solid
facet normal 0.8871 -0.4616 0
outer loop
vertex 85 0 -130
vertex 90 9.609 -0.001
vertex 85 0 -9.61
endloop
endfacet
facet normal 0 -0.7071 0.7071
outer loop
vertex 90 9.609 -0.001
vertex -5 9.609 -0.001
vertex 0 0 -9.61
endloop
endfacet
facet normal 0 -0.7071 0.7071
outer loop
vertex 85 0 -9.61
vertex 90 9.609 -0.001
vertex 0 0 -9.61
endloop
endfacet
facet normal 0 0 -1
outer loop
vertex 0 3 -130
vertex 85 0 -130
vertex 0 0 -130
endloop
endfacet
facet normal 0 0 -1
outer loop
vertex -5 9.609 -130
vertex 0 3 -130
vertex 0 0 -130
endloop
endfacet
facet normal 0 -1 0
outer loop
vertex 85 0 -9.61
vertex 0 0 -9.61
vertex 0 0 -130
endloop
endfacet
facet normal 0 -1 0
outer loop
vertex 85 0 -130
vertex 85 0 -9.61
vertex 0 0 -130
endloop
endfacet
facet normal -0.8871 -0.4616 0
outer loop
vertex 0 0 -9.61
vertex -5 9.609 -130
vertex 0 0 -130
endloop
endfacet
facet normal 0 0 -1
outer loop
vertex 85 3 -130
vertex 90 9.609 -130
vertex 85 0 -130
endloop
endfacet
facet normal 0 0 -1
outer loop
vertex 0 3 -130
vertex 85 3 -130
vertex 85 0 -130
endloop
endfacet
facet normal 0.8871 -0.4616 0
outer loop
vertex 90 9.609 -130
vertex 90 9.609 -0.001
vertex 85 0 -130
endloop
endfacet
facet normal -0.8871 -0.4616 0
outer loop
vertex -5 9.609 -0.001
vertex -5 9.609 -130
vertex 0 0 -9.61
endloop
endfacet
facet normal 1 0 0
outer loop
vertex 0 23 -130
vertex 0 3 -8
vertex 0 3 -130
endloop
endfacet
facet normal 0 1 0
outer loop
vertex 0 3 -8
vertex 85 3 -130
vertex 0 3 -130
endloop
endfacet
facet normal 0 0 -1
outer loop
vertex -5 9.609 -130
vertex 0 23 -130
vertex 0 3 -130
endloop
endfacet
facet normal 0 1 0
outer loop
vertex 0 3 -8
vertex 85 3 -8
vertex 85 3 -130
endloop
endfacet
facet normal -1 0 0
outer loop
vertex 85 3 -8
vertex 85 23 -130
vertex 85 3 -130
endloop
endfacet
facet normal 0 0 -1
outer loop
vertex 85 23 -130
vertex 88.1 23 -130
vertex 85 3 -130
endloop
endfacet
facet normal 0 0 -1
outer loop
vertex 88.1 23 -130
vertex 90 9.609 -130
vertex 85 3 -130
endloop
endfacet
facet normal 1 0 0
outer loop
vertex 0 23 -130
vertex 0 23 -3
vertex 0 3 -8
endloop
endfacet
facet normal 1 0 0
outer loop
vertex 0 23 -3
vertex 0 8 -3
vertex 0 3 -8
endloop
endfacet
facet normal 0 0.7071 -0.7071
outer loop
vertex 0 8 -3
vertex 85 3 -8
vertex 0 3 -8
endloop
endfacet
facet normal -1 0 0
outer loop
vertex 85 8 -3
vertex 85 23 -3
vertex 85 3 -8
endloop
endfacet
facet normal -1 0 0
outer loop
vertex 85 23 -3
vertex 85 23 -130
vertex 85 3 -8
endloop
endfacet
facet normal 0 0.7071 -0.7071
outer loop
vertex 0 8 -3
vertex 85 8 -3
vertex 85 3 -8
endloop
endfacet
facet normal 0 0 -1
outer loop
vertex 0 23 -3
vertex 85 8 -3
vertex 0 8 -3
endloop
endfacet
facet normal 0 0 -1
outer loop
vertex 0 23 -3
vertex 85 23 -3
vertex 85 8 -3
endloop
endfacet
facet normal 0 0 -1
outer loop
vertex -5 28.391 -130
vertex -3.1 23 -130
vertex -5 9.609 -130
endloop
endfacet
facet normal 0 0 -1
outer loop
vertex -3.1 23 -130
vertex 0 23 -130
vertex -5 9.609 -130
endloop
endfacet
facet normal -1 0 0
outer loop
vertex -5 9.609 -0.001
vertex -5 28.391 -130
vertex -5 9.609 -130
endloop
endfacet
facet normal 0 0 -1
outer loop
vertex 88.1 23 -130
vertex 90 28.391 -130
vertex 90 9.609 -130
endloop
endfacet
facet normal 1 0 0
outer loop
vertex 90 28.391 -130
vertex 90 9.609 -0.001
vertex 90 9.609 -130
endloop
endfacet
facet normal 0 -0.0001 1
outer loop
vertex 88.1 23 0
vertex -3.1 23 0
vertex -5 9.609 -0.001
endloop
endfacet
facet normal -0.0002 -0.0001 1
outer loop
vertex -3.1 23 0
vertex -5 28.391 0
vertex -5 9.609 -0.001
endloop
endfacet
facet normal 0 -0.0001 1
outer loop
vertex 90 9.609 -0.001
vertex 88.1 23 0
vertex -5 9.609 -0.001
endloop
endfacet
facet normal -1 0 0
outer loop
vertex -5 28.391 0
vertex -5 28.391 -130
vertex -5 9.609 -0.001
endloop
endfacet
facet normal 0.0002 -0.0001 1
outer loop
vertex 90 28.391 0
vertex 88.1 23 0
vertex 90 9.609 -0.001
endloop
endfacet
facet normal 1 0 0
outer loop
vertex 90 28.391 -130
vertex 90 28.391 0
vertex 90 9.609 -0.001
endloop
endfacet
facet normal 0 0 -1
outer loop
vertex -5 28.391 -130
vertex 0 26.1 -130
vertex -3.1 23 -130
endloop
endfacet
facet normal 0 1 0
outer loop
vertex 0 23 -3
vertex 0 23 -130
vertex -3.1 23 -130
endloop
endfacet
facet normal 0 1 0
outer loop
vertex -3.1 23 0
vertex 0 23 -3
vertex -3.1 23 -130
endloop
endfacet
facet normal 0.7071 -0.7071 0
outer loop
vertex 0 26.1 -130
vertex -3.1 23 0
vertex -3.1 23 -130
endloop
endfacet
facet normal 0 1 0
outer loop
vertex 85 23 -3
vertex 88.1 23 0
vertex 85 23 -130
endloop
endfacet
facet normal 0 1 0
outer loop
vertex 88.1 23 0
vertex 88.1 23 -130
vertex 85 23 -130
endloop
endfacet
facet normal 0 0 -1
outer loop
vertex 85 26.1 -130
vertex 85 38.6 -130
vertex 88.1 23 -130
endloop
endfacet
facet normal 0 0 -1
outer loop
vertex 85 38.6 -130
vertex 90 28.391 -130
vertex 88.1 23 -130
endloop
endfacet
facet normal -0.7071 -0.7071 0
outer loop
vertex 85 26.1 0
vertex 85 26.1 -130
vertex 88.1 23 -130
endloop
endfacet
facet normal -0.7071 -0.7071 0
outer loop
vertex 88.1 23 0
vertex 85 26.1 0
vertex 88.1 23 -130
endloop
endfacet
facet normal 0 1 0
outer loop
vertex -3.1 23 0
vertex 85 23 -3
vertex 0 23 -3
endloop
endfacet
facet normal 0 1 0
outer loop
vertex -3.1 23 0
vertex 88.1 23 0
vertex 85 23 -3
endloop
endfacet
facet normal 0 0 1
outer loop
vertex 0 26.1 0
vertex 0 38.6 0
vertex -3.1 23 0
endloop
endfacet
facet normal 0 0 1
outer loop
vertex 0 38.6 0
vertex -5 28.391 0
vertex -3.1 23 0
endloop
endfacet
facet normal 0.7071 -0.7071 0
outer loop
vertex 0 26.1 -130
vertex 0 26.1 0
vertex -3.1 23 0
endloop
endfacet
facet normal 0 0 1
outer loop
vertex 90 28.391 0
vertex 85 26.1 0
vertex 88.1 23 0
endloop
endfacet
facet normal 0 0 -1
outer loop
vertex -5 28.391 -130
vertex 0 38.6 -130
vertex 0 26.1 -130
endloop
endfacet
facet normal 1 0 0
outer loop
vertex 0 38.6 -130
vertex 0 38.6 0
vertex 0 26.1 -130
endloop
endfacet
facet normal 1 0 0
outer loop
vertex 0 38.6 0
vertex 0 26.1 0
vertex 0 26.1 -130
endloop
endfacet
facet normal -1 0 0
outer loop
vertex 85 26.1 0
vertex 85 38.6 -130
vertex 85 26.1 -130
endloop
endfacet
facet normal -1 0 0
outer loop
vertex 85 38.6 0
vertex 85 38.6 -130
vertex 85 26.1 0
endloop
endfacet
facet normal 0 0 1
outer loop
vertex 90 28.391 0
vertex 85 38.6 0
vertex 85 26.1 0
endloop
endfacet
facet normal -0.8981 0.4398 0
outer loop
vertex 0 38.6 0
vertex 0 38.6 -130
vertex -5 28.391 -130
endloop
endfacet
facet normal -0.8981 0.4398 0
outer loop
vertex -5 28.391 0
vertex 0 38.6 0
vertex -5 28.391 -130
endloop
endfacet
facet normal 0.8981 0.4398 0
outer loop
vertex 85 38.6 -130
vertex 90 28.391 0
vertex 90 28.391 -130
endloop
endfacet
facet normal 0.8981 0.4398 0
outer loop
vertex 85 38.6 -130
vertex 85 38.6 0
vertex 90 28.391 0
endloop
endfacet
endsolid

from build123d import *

# Parameters (mm, degrees)
SKETCH1_W                           = 85
SKETCH1_H                           = 130
BOSS_EXTRUDE1_BASE_DEPTH            = 3
BOSS_EXTRUDE4_SIDE_WALLS_DEPTH      = 130
CUT_EXTRUDE2_GUIDE_HOLES_DEPTH      = 163.616112363
SKETCH15_W                          = 85
SKETCH15_H                          = 20
BOSS_EXTRUDE9_FRONT_WALL_DEPTH      = 3
CHAMFER5_FRONT_CHAMFER_SIZE         = 9.61
CHAMFER6_FRONT_CHAMFER_CLEANUP_SIZE = 5
BOSS_EXTRUDE1_DEPTH                 = 130


with BuildPart() as part:
    # Sketch1 → Boss-Extrude1 _Base (new body)
    with BuildSketch(Plane(origin=(0, 0, 0), x_dir=(1, 0, 0), z_dir=(0, 1, 0))):
        with Locations((42.5, 65)):
            Rectangle(SKETCH1_W, SKETCH1_H)
    extrude(amount=BOSS_EXTRUDE1_BASE_DEPTH)

    # Sketch5 → Boss-Extrude4 _Side Walls (add, through all)
    with BuildSketch(Plane.XY):
        Polygon((-5, 28.390936655), (0, 38), (0, 0), (-5, 9.609063345), align=None)
        Polygon((90, 9.609063345), (90, 28.390936655), (85, 38), (85, 0), align=None)
    extrude(amount=-BOSS_EXTRUDE4_SIDE_WALLS_DEPTH)

    # Sketch4 → Cut-Extrude2 _Guide Holes (cut, through all)
    with BuildSketch(Plane.XY):
        Polygon((-3.1, 23), (0, 26.1), (0, 23), align=None)
        Polygon((85, 23), (88.1, 23), (85, 26.1), align=None)
    extrude(amount=-CUT_EXTRUDE2_GUIDE_HOLES_DEPTH, mode=Mode.SUBTRACT)

    # Sketch15 → Boss-Extrude9 _Front Wall (add)
    with BuildSketch(Plane.XY):
        with Locations((42.5, 13)):
            Rectangle(SKETCH15_W, SKETCH15_H)
    extrude(amount=-BOSS_EXTRUDE9_FRONT_WALL_DEPTH)

    # Chamfer5 _Front Chamfer
    chamfer5_front_chamfer_edges = [part.edges().sort_by_distance(p)[0] for p in [
        (42.5, 0, 0),
    ]]
    chamfer(chamfer5_front_chamfer_edges, length=CHAMFER5_FRONT_CHAMFER_SIZE)

    # Chamfer6 _Front Chamfer Cleanup
    chamfer6_front_chamfer_cleanup_edges = [part.edges().sort_by_distance(p)[0] for p in [
        (42.5, 3, -3),
    ]]
    chamfer(chamfer6_front_chamfer_cleanup_edges, length=CHAMFER6_FRONT_CHAMFER_CLEANUP_SIZE)

    # Sketch16 → Boss-Extrude1 (add, through all)
    with BuildSketch(Plane.XY):
        Polygon((0, 26.1), (0, 38.6), (-5, 28.390936655), align=None)
        Polygon((90, 28.390936655), (85, 26.1), (85, 38.6), align=None)
    extrude(amount=-BOSS_EXTRUDE1_DEPTH)


solid = part.part
